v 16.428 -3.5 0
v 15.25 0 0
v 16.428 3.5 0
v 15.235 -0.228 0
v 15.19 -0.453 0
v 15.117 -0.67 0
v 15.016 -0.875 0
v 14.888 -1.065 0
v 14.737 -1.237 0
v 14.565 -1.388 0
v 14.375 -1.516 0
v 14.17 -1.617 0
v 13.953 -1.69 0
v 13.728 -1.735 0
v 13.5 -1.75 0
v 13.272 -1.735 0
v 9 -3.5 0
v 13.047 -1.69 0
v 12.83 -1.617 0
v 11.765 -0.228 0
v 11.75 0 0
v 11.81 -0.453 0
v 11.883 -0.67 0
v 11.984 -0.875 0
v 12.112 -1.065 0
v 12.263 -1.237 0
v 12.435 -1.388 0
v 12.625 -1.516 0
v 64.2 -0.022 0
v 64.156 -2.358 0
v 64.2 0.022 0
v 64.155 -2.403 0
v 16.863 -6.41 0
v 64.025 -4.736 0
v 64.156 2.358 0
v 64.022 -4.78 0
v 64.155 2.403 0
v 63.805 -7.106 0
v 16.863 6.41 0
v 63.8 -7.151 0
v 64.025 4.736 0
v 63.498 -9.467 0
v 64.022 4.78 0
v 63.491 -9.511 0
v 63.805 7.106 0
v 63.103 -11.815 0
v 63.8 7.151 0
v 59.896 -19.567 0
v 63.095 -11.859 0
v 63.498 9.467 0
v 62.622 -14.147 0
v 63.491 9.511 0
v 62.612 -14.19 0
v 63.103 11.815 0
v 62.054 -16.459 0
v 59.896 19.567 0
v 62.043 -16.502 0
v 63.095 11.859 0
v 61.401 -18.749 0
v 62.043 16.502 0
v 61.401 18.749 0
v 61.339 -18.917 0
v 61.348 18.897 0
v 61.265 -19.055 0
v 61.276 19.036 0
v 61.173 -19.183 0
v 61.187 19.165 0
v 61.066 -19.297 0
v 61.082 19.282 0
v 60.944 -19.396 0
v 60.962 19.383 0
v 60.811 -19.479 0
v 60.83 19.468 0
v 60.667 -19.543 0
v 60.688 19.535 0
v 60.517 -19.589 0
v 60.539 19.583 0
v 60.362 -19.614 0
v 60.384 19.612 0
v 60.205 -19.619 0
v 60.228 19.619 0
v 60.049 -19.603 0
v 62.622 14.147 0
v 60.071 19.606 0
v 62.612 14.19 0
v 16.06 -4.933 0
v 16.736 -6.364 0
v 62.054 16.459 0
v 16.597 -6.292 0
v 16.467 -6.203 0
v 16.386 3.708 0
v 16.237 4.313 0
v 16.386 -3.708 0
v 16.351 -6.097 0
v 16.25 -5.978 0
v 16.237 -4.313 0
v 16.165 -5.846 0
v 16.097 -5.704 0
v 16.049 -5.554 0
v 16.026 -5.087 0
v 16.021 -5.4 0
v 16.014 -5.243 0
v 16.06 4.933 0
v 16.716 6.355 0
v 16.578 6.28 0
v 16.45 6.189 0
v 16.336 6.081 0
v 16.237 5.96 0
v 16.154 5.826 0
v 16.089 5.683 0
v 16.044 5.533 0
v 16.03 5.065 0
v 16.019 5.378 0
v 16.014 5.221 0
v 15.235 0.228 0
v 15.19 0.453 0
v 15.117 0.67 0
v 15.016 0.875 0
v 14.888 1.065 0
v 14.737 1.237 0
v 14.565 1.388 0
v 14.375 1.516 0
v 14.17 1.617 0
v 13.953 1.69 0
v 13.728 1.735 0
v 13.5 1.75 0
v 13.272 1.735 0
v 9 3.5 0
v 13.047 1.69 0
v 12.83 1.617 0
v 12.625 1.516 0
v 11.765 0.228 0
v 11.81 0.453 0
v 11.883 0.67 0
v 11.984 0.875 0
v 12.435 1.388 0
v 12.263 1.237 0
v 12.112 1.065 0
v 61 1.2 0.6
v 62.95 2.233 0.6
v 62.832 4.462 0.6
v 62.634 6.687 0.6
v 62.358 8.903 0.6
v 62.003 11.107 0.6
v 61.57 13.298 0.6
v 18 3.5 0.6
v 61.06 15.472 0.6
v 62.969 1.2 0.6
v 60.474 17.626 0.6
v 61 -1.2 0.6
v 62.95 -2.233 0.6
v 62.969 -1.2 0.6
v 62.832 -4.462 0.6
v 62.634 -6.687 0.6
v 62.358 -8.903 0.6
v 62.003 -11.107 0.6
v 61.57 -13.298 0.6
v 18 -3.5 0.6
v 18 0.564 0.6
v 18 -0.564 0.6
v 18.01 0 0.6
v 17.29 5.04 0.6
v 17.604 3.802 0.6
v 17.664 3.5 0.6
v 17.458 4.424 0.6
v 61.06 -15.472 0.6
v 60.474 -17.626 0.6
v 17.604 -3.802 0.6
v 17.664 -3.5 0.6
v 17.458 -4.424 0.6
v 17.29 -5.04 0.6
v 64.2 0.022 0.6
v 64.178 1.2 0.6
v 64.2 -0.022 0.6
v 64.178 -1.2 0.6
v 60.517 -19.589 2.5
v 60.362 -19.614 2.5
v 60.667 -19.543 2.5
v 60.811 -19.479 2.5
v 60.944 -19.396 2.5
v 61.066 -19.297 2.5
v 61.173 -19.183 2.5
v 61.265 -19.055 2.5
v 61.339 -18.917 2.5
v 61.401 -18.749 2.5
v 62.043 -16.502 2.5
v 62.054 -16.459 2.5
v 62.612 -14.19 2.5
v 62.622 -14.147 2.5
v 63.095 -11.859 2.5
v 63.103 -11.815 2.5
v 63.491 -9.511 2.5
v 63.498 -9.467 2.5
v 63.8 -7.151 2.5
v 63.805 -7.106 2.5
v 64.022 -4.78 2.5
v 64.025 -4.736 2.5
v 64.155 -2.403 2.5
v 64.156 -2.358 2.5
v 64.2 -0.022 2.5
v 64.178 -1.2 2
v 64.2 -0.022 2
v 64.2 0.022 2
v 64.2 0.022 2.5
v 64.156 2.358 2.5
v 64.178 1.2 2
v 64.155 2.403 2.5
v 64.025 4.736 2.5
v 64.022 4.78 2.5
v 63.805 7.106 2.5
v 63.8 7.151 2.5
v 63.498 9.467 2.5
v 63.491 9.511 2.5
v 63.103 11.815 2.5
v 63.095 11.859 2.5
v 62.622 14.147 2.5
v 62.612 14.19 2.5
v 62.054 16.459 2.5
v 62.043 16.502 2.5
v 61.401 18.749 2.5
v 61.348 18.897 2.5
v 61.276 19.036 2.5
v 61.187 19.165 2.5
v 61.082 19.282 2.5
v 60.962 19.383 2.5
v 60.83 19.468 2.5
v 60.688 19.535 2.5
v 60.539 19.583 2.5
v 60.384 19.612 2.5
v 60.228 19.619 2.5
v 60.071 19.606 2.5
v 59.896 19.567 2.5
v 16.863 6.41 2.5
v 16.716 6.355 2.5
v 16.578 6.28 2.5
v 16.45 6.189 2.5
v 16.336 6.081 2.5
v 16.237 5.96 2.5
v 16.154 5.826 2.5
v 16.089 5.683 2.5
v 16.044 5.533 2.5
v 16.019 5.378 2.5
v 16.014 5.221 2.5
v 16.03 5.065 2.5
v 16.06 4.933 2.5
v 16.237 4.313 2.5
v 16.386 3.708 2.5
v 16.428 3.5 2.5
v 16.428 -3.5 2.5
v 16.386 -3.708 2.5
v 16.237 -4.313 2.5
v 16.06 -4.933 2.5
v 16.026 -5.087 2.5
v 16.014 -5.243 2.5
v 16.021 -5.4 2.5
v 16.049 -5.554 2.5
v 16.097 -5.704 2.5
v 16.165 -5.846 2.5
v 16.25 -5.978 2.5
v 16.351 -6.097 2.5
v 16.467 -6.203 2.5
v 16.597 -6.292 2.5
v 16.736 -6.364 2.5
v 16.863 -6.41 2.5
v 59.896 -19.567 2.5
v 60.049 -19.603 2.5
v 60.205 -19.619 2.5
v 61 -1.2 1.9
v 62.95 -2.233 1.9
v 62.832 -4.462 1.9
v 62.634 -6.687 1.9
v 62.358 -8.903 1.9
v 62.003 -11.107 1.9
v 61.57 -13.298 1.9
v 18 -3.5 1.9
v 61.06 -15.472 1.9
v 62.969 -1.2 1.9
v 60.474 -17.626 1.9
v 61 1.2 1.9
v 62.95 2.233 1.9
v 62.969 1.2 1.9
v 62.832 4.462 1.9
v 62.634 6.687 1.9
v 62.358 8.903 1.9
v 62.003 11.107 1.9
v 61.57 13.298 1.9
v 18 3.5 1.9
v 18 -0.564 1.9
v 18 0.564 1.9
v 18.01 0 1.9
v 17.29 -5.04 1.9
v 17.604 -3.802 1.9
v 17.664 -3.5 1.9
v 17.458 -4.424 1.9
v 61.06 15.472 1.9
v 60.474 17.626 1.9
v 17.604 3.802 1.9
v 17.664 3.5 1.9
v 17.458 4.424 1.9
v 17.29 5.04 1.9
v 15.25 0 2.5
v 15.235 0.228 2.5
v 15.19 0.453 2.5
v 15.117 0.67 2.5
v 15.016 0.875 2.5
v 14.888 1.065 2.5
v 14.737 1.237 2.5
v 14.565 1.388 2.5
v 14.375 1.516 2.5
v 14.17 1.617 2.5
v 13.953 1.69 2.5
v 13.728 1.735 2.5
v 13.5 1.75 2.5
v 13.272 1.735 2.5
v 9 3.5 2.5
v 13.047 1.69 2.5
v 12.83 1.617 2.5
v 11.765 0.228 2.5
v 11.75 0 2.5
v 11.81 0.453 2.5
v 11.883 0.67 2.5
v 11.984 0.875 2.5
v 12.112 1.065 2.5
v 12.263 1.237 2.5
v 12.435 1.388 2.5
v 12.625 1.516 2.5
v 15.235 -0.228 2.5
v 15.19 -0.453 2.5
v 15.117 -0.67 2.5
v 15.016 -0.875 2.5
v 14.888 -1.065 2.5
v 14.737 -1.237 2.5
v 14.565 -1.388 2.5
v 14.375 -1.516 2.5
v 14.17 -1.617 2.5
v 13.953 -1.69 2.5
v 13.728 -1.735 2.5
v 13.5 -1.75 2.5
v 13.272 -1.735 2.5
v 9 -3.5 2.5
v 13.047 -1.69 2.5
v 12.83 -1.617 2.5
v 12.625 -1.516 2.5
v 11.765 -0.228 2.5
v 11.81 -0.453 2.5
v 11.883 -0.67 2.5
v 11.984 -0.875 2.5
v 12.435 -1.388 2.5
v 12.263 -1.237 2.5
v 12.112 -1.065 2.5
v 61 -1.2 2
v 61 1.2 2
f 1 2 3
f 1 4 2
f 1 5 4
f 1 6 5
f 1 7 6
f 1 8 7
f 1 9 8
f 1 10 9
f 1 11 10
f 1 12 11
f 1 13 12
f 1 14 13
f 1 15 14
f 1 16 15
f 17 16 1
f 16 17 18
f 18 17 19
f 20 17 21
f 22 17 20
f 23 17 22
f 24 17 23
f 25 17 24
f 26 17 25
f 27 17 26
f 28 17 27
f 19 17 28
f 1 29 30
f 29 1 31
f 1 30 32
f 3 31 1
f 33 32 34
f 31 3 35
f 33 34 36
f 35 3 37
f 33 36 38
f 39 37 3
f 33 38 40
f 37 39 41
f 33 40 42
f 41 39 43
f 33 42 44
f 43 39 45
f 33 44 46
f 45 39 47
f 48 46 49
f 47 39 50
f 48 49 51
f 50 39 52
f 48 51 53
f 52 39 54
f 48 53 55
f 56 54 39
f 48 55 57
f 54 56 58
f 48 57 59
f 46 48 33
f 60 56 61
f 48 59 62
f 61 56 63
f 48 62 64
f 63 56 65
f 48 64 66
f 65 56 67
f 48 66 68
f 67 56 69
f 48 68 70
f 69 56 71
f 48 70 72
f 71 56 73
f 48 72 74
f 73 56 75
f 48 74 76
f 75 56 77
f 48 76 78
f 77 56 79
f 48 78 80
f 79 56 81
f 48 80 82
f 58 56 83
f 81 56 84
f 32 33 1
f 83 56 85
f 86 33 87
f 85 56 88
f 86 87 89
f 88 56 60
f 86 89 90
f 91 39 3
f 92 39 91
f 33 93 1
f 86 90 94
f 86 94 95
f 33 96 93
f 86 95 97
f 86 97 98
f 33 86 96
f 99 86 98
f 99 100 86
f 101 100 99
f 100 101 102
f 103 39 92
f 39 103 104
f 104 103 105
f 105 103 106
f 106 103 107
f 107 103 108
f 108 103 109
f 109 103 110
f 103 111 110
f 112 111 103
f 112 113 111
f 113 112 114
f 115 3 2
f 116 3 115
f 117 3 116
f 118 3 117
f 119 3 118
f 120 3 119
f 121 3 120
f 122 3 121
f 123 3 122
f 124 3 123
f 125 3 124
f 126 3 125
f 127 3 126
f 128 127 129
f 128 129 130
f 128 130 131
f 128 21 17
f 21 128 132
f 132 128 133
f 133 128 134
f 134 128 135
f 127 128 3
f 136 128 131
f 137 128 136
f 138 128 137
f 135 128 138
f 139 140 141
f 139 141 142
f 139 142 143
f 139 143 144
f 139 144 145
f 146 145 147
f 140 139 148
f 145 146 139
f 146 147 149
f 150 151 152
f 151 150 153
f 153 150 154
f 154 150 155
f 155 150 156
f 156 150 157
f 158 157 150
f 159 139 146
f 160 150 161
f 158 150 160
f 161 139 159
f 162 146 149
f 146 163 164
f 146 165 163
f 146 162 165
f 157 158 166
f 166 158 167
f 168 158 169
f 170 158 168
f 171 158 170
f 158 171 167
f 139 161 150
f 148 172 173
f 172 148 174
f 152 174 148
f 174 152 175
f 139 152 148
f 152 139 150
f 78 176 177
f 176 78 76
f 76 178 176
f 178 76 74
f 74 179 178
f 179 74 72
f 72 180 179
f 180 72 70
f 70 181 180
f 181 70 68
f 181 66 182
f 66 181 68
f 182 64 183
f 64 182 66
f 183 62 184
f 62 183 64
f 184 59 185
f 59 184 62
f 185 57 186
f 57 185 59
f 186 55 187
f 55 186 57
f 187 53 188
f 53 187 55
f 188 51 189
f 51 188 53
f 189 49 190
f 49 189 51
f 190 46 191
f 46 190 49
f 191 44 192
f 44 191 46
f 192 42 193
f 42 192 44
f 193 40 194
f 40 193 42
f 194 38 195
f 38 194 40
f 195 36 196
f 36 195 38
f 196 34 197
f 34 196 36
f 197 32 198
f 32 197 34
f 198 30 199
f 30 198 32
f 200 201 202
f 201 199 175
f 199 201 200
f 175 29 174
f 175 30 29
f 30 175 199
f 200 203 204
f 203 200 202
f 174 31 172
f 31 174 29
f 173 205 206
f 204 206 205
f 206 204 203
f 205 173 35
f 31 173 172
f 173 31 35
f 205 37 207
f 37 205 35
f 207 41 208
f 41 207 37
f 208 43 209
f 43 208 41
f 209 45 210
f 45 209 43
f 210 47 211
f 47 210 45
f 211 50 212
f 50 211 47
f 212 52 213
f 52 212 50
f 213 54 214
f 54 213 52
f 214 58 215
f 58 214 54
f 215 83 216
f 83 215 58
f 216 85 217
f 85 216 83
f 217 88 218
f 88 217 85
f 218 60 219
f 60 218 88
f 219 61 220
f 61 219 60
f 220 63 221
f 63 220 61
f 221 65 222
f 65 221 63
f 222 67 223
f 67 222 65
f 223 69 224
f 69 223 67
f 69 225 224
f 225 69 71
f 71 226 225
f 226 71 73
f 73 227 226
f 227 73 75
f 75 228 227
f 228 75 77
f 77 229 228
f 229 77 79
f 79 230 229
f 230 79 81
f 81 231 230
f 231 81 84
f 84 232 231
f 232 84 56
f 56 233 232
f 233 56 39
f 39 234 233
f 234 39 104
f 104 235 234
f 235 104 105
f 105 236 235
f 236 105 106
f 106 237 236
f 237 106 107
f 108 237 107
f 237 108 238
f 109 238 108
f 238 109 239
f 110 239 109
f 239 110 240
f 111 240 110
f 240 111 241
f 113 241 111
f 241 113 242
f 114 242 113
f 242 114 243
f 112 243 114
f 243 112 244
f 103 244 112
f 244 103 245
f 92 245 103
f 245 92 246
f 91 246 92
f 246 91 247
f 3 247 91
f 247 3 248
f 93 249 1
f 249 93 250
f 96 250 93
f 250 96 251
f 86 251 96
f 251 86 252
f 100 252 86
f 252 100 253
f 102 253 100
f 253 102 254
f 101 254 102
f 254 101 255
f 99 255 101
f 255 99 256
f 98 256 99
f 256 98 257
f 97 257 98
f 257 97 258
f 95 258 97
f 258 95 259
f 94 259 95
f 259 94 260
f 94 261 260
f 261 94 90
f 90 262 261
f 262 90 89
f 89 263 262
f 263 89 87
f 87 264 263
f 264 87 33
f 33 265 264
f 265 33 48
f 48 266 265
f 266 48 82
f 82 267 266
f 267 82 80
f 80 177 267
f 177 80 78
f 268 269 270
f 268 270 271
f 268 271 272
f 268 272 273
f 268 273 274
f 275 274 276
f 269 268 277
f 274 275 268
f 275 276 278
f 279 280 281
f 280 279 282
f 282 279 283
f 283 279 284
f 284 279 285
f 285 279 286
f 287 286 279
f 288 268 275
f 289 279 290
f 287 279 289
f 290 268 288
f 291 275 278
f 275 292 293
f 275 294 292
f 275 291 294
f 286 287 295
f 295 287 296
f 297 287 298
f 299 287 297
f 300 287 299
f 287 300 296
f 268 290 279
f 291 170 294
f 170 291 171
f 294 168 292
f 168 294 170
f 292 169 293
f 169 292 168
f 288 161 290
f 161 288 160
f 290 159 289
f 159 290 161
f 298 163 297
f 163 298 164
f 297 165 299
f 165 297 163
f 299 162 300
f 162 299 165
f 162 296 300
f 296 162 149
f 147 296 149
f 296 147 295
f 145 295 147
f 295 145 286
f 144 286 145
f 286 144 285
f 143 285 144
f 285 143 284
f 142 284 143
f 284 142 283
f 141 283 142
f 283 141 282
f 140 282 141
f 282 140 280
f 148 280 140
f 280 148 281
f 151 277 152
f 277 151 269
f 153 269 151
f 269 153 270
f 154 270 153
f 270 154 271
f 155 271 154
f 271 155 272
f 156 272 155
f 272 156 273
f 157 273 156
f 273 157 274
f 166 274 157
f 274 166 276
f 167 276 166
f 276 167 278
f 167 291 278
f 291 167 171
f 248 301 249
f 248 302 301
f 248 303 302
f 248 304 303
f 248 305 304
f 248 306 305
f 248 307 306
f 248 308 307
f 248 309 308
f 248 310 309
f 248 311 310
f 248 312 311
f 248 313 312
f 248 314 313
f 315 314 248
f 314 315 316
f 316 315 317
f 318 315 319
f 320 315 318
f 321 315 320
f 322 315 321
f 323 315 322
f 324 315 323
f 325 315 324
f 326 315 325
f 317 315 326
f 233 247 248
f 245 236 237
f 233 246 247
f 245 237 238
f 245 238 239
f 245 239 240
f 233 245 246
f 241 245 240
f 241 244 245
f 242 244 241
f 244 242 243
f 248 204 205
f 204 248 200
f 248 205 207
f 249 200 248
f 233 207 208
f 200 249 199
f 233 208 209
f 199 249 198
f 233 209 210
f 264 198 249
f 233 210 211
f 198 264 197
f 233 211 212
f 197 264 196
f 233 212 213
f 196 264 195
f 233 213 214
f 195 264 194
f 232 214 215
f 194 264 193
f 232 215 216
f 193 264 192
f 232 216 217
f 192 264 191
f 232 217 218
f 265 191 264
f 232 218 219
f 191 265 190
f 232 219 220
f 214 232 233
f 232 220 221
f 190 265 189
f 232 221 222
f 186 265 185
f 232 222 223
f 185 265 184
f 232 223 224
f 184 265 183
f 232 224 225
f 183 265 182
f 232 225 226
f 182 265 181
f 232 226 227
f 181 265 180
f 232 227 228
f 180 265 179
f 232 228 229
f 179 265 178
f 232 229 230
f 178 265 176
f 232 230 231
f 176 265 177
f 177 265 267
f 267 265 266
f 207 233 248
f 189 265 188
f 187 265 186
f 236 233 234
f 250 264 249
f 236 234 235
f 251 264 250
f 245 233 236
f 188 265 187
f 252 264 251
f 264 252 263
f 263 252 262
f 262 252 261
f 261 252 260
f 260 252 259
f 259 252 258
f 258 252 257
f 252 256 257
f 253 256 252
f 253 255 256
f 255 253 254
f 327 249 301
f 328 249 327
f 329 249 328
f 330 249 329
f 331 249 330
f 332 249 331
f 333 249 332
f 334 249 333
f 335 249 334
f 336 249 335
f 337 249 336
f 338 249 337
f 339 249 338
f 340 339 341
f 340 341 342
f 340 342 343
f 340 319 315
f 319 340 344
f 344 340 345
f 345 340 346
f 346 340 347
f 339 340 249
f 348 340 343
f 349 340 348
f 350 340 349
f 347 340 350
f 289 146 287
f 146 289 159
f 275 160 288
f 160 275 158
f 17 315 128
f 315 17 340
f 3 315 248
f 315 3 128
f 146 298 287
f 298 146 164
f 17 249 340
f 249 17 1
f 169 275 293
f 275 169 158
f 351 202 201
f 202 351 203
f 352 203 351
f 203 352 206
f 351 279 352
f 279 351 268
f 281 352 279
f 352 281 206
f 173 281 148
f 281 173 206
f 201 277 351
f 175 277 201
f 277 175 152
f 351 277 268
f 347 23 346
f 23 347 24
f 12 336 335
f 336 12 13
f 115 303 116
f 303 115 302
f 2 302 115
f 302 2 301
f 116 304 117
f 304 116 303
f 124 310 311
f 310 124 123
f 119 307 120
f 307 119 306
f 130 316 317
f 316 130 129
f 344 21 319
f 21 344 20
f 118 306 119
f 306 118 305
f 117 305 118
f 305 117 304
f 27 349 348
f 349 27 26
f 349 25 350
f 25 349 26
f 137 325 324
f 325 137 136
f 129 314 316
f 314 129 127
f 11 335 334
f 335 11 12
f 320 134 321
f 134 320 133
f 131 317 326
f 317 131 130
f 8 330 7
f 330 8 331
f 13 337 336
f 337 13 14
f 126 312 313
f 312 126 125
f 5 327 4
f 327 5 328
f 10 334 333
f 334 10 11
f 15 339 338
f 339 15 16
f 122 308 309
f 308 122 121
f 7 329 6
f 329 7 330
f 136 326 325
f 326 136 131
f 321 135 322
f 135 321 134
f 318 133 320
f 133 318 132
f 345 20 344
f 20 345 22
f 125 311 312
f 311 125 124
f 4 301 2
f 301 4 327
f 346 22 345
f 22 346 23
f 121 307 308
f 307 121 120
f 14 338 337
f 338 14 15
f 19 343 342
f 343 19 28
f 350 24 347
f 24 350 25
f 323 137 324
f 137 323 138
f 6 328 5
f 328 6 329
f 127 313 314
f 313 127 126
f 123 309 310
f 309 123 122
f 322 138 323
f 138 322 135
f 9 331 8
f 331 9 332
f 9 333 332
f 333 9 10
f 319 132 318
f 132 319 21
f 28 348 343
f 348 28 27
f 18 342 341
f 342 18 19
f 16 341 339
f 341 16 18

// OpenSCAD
// file: parameters.scad
// =============================================================================
// Gen-AO Stacked dual-stator mid-rotor copper-max ultra - WOUND-AWARE (HARD GATE)
// ONE mid dual-face Halbach rotor | TWO wound pancake stators | 18 coils x165 t
// =============================================================================

wire_awg            = 26;
wire_od             = 0.45;
turns               = 165;      // +10 vs Gen-AL 155; 18x165x~0.119 ~ 353 m
fill                = 0.70;
layers_per_face     = 2;
wind_build_axial    = layers_per_face * wire_od * fill;   // 0.63
wind_build_radial   = 3 * wire_od * fill;                 // 0.945

coil_id_r           = 18.0;
coil_od_r           = 63.0;
span_deg            = 34.0;     // 9 stations x 40 deg
former_web          = 1.30;     // thinner vs AL 1.40
flange_t            = 0.60;
wall                = 1.2;
slot_w              = 2.4;
mount_hole          = 3.5;
tab_len             = 7.0;

former_bare_h       = former_web + 2 * flange_t;            // 2.50
coil_envelope_h     = former_bare_h + 2 * wind_build_axial; // 3.76

run_clear           = 0.50;
gap_spacer_h        = run_clear + wind_build_axial;         // 1.13
m2m                 = coil_envelope_h + 2 * run_clear;      // 4.76 per gap

coil_stations       = 9;        // per stator; x2 = 18 total
bay_r_in            = coil_id_r - 2.0 - wind_build_radial;
bay_r_out           = coil_od_r + 2.0 + wind_build_radial;
bay_span            = span_deg + 4.0;
bay_offset          = 2.0;
bay_depth           = former_bare_h + wind_build_axial;     // wound sits in bay
stator_back_web     = 2.0;
stator_thick        = bay_depth + stator_back_web;
stator_od           = 156.0;
shaft_clear_stator  = 38.0;
coil_mount_r        = 27.5;

large_pocket_d      = 20.3;
small_pocket_d      = 5.3;
pocket_h            = 5.2;
large_n             = 8;
R_large             = 40.0;     // tighter copper overlap vs AL R=41
R_small_inner       = 26.5;
R_small_mid         = 40.0;
R_small_outer       = 56.5;
carrier_od          = 154.0;
mid_carrier_thick   = 12.0;
hub_h               = 10.0;
hub_od              = 30.0;
rotor_b_offset_deg  = 22.5;

shaft_bore          = 8.35;
bearing_d           = 21.85;
bearing_h           = 7.2;
m3_clear            = 3.5;
bolt_r_inner        = 36.0;
bolt_n_inner        = 6;
flange_bolt_r       = 72.0;
flange_bolt_n       = 6;
brace_r             = 68.0;
brace_d             = 4.3;
brace_n             = 4;

spacer_pad_od       = 14.0;
spacer_pad_id       = m3_clear;
endbell_od          = 156.0;
endbell_thick       = 8.0;
endbell_shaft_clear = 10.0;

$fn = 64;
// main file
// Gen-AO pancake former — wind BEFORE assembly
include <parameters.scad>;
$fn = 48;

module sector_2d(r_in, r_out, ang) {
    polygon([
        for (a = [-ang/2 : ang/16 : ang/2]) [r_in*cos(a), r_in*sin(a)],
        for (a = [ang/2 : -ang/16 : -ang/2]) [r_out*cos(a), r_out*sin(a)]
    ]);
}
module flange() {
    linear_extrude(flange_t) offset(r=wall) sector_2d(coil_id_r, coil_od_r, span_deg);
}
difference() {
    union() {
        flange();
        translate([0, 0, flange_t])
            linear_extrude(former_web)
                difference() {
                    offset(r=wall) sector_2d(coil_id_r, coil_od_r, span_deg);
                    sector_2d(coil_id_r + 0.01, coil_od_r - 0.01, span_deg - 1.5);
                }
        translate([0, 0, flange_t + former_web]) flange();
        translate([coil_id_r - tab_len - 2, -3.5, 0])
            cube([tab_len + 2, 7, former_bare_h]);
    }
    translate([coil_od_r - 2, -slot_w/2, flange_t])
        cube([wall + 4, slot_w, former_web + 0.1]);
    translate([coil_id_r - tab_len/2 - 1, 0, -0.1])
        cylinder(d=mount_hole, h=former_bare_h + 1);
}
